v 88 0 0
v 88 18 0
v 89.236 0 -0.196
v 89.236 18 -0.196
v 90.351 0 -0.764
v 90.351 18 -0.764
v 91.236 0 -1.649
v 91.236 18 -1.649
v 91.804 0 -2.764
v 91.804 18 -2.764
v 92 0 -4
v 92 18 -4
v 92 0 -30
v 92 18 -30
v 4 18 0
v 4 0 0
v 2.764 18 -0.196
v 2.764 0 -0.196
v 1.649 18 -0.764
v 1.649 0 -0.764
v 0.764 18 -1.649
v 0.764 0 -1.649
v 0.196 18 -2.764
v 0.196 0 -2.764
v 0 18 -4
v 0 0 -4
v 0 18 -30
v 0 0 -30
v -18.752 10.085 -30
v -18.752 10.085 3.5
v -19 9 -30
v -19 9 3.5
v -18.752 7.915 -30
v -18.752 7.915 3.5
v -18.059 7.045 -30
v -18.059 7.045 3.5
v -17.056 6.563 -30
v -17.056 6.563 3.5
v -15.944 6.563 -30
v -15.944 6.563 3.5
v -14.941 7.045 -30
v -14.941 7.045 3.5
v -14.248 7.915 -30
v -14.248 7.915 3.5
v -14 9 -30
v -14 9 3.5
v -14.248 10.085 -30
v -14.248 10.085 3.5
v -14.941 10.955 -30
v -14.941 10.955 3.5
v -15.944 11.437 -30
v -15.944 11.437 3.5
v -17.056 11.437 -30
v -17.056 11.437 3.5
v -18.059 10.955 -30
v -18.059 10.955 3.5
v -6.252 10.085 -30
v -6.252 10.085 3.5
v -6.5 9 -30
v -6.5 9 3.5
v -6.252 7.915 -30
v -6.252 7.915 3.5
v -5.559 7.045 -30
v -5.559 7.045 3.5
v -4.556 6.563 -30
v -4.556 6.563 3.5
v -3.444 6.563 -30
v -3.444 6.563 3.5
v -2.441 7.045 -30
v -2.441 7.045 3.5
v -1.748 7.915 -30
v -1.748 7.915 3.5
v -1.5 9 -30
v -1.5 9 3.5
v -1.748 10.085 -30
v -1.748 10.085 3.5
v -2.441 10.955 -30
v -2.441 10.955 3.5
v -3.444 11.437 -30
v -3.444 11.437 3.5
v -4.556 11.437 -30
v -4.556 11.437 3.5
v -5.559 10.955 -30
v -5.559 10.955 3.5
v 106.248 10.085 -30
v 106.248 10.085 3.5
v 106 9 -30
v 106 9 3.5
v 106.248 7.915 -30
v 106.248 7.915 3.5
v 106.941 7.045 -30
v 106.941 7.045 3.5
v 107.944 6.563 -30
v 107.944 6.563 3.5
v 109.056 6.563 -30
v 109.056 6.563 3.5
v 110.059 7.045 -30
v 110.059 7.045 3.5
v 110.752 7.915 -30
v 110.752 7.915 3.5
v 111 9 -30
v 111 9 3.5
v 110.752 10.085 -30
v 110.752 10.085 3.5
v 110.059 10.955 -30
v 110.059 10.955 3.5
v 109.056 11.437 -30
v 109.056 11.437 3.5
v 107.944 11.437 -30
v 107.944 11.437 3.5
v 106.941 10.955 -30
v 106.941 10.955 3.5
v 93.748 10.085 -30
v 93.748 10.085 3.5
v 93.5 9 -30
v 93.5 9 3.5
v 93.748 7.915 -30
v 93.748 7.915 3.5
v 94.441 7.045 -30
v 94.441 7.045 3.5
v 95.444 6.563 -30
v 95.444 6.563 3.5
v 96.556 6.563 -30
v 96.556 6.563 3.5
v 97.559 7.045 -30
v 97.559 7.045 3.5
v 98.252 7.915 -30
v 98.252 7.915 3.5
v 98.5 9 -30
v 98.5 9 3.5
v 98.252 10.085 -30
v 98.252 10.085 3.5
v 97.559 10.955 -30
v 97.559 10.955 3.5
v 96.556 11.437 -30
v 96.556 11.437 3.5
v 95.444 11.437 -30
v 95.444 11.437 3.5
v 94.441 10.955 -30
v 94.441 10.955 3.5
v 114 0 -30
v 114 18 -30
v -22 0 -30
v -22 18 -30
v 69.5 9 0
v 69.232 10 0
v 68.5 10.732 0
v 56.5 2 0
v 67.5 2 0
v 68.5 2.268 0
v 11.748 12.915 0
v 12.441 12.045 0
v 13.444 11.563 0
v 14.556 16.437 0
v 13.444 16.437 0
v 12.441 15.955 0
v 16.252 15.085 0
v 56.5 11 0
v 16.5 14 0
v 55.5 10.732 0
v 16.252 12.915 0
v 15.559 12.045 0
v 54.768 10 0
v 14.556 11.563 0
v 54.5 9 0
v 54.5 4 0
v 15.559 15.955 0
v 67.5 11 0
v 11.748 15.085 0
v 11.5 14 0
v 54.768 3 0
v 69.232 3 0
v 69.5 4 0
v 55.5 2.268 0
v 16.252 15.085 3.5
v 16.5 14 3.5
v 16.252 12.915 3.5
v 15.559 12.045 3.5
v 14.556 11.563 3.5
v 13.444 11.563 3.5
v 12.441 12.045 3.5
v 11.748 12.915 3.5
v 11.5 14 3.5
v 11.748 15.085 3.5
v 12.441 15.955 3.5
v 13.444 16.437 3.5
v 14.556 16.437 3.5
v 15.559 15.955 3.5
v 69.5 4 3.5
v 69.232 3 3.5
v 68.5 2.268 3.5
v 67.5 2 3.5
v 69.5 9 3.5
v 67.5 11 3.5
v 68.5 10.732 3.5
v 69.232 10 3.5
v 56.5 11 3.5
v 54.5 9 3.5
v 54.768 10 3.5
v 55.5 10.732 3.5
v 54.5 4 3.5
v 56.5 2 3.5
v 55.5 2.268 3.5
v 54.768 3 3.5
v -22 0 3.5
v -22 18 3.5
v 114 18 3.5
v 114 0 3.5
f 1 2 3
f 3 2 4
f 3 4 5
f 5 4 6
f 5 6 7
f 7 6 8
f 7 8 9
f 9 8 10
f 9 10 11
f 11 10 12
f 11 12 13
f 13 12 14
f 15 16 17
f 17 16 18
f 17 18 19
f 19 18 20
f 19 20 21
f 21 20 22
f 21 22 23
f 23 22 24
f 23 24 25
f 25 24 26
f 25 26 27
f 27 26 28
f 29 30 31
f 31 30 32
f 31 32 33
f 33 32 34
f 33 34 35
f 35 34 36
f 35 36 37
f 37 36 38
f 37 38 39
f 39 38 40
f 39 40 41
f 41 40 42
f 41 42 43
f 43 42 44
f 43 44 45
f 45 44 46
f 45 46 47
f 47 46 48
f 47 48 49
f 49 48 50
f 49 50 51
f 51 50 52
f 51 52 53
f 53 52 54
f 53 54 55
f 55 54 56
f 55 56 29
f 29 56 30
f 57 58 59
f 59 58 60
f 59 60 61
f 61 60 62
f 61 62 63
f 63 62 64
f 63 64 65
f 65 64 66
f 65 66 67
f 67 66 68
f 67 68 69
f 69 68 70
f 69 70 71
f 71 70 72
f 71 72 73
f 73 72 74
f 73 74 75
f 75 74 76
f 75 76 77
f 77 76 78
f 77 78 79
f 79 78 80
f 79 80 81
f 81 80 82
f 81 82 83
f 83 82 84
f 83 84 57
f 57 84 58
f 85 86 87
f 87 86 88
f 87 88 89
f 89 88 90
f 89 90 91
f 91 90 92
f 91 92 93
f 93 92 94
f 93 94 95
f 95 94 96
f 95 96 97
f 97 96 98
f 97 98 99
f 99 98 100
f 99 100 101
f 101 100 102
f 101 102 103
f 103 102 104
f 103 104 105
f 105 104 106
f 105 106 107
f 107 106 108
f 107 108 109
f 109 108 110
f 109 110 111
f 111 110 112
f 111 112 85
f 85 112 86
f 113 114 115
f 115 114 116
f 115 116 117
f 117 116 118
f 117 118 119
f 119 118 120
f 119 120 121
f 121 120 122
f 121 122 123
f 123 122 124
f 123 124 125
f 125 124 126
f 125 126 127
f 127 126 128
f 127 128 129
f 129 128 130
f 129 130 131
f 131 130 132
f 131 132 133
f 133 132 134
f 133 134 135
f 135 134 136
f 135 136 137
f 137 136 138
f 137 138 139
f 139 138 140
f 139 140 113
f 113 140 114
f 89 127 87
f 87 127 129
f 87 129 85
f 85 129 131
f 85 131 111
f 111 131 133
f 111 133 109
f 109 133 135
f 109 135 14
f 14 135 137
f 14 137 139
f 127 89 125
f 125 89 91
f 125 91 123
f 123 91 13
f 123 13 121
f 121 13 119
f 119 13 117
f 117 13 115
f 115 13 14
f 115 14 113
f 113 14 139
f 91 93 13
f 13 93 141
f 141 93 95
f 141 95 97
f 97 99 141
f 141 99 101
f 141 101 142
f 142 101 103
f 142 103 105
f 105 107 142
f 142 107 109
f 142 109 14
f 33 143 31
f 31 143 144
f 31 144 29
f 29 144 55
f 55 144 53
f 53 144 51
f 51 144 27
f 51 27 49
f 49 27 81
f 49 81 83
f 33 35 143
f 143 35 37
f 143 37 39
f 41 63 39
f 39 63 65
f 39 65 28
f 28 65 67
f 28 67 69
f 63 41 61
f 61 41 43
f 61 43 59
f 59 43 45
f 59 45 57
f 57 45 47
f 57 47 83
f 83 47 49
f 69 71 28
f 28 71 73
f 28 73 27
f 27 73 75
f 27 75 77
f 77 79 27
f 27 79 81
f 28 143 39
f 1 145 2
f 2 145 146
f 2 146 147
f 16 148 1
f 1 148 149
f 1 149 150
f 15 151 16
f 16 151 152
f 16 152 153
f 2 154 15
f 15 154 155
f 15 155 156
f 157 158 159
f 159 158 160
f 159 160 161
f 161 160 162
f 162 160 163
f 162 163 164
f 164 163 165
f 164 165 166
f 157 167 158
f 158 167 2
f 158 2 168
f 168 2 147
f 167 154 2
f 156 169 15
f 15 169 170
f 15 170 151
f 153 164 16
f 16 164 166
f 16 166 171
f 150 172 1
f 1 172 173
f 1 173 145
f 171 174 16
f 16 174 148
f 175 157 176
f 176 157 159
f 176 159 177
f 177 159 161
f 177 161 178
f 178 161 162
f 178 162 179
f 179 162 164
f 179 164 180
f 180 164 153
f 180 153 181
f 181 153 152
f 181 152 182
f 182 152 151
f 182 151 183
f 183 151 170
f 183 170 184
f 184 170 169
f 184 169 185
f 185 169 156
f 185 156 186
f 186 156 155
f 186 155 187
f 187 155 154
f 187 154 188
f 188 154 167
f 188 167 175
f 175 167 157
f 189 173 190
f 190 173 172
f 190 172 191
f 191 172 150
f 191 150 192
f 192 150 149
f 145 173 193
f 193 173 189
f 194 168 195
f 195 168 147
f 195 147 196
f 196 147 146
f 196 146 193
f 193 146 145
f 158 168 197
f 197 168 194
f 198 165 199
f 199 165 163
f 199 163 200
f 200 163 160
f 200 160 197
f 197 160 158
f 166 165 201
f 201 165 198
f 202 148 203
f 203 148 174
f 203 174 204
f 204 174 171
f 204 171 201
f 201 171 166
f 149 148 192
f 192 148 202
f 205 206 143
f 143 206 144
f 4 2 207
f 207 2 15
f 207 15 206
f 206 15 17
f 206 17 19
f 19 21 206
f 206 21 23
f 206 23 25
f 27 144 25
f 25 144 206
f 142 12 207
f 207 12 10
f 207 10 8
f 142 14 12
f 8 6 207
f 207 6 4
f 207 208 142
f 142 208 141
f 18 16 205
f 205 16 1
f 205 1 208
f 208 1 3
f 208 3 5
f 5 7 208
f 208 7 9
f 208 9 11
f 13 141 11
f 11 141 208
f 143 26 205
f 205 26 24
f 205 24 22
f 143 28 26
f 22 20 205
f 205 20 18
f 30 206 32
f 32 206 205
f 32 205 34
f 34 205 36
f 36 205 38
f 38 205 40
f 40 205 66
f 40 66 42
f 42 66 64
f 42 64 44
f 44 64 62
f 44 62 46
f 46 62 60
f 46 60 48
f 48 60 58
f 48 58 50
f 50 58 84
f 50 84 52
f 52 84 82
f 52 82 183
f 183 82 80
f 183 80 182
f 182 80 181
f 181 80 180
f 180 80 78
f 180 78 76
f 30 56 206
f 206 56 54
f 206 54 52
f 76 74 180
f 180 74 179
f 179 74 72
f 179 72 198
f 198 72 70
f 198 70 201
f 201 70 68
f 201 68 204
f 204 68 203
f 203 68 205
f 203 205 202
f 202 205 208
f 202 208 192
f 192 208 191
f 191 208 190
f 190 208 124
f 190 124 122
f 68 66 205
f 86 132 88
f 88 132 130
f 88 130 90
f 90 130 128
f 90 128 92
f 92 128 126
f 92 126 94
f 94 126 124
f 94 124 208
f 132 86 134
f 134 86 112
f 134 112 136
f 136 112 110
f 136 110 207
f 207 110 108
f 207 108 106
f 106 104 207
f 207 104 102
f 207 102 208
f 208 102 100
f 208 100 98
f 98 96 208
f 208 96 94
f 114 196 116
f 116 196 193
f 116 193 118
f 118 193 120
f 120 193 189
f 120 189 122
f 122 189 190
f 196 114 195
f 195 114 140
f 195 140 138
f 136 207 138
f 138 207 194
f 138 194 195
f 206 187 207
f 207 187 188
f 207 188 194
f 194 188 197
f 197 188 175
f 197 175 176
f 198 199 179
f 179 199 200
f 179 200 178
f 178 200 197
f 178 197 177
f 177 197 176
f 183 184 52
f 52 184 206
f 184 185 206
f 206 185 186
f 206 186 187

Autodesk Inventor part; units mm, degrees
ref_plane "YZ Plane" through (0, 0, 0) normal (1, 0, 0) x (0, 1, 0)
ref_plane "XZ Plane" through (0, 0, 0) normal (0, 1, 0) x (-1, 0, 0)
ref_plane "XY Plane" through (0, 0, 0) normal (0, 0, 1) x (1, 0, 0)
sketch "Sketch3" plane through (0, 0, 0) normal (0, 0, 1) x (1, 0, 0)
  line L0 (0, -3.6) -> (0, 21.6) projected
  line L1 (-49.2, 0) -> (141.2, 0) projected
  circle A0 centre (14, 14) radius 2.5
  line L2 (56.5, 11) -> (67.5, 11)
  line L3 (69.5, 9) -> (69.5, 4)
  line L4 (67.5, 2) -> (56.5, 2)
  line L5 (54.5, 4) -> (54.5, 9)
  line L6 (54.5, 11) -> (69.5, 2) construction
  line L7 (69.5, 11) -> (54.5, 2) construction
  arc A1 (69.5, 9) -> (67.5, 11) centre (67.5, 9) ccw
  arc A2 (67.5, 2) -> (69.5, 4) centre (67.5, 4) ccw
  arc A3 (54.5, 4) -> (56.5, 2) centre (56.5, 4) ccw
  arc A4 (56.5, 11) -> (54.5, 9) centre (56.5, 9) ccw
  line L8 (0, 18) -> (92, 18)
  line L9 (92, 18) -> (92, 0)
  line L10 (92, 0) -> (0, 0)
  line L11 (0, 0) -> (0, 18)
  line L12 (0, 18) -> (92, 0) construction
  line L13 (92, 18) -> (0, 0) construction
  line L14 (-22, 18) -> (0, 18)
  line L15 (0, 18) -> (0, 0)
  line L16 (0, 0) -> (-22, 0)
  line L17 (-22, 0) -> (-22, 18)
  line L18 (-22, 18) -> (0, 0) construction
  line L19 (0, 18) -> (-22, 0) construction
  line L20 (46, 18) -> (46, 0) construction
  line L21 (92, 18) -> (114, 18)
  line L22 (114, 18) -> (114, 0)
  line L23 (114, 0) -> (92, 0)
  line L24 (92, 0) -> (92, 18)
  line L25 (92, 18) -> (114, 0) construction
  line L26 (114, 18) -> (92, 0) construction
  point P0 (0, 0)
  point P1 (62, 6.5)
  point P2 (54.5, 6.5)
  point P3 (46, 9)
  point P4 (-11, 9)
  point P5 (103, 9)
  point P6 (-22, 0)
  point P7 (114, 0)
  point P8 (92, 18)
  point P9 (92, 0)
  point P10 (96, 9)
  point P11 (108.5, 9)
  point P12 (-4, 9)
  point P13 (-16.5, 9)
  dimension "d26" = 5
  dimension "d29" = 15
  dimension "d30" = 9
  dimension "d31" = 2
  dimension "d34" = 92
  dimension "d35" = 18
  dimension "d36" = 22
  dimension "d37" = 18
  dimension "d38" = 22
  dimension "d39" = 18
  dimension "d41" = 14
  dimension "d42" = 14
  dimension "d56" = 62
  dimension "d57" = 6.5
  dimension "d60" = 50
  dimension "d61" = 62.5
  dimension "d62" = 9
extrude "Extrusion4" add sketch "Sketch3" along normal blind 3.5
extrude "Extrusion5" add sketch "Sketch3" against normal blind 30 contours L1 L17 L14 L0 | L9 L21 L22 L1
hole "Hole1" at (96, 9, 0) at (108.5, 9, 0) at (-4, 9, 0) at (-16.5, 9, 0) direction (0, 0, -1) diameter 5 end through all both
fillet "Fillet1" radius 4 2 edges at (0, 9, 0) (92, 9, 0)
properties part number "camera_holder"
